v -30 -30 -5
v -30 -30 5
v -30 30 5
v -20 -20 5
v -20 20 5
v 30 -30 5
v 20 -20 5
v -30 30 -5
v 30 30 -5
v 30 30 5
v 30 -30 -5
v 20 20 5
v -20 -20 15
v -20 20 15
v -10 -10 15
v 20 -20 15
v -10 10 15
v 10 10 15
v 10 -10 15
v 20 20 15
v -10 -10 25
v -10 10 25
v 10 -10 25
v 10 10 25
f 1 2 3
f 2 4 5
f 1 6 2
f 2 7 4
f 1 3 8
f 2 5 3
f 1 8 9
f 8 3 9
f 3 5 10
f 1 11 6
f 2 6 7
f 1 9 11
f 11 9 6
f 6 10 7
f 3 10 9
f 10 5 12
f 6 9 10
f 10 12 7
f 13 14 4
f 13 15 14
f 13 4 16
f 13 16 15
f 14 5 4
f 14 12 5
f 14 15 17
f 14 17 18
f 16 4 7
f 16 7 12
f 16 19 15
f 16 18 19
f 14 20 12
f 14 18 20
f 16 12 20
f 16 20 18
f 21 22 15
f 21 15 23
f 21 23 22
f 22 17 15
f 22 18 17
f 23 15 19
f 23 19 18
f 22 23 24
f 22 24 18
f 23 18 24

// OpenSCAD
// 3段階段状ピラミッド
union() {
    // 1段目 (底辺): 60mm × 60mm × 高さ 10mm
    translate([0, 0, 0])
    cube([60, 60, 10], center=true);
    
    // 2段目 (中段): 40mm × 40mm × 高さ 10mm
    translate([0, 0, 10])
    cube([40, 40, 10], center=true);
    
    // 3段目 (上段): 20mm × 20mm × 高さ 10mm
    translate([0, 0, 20])
    cube([20, 20, 10], center=true);
}
